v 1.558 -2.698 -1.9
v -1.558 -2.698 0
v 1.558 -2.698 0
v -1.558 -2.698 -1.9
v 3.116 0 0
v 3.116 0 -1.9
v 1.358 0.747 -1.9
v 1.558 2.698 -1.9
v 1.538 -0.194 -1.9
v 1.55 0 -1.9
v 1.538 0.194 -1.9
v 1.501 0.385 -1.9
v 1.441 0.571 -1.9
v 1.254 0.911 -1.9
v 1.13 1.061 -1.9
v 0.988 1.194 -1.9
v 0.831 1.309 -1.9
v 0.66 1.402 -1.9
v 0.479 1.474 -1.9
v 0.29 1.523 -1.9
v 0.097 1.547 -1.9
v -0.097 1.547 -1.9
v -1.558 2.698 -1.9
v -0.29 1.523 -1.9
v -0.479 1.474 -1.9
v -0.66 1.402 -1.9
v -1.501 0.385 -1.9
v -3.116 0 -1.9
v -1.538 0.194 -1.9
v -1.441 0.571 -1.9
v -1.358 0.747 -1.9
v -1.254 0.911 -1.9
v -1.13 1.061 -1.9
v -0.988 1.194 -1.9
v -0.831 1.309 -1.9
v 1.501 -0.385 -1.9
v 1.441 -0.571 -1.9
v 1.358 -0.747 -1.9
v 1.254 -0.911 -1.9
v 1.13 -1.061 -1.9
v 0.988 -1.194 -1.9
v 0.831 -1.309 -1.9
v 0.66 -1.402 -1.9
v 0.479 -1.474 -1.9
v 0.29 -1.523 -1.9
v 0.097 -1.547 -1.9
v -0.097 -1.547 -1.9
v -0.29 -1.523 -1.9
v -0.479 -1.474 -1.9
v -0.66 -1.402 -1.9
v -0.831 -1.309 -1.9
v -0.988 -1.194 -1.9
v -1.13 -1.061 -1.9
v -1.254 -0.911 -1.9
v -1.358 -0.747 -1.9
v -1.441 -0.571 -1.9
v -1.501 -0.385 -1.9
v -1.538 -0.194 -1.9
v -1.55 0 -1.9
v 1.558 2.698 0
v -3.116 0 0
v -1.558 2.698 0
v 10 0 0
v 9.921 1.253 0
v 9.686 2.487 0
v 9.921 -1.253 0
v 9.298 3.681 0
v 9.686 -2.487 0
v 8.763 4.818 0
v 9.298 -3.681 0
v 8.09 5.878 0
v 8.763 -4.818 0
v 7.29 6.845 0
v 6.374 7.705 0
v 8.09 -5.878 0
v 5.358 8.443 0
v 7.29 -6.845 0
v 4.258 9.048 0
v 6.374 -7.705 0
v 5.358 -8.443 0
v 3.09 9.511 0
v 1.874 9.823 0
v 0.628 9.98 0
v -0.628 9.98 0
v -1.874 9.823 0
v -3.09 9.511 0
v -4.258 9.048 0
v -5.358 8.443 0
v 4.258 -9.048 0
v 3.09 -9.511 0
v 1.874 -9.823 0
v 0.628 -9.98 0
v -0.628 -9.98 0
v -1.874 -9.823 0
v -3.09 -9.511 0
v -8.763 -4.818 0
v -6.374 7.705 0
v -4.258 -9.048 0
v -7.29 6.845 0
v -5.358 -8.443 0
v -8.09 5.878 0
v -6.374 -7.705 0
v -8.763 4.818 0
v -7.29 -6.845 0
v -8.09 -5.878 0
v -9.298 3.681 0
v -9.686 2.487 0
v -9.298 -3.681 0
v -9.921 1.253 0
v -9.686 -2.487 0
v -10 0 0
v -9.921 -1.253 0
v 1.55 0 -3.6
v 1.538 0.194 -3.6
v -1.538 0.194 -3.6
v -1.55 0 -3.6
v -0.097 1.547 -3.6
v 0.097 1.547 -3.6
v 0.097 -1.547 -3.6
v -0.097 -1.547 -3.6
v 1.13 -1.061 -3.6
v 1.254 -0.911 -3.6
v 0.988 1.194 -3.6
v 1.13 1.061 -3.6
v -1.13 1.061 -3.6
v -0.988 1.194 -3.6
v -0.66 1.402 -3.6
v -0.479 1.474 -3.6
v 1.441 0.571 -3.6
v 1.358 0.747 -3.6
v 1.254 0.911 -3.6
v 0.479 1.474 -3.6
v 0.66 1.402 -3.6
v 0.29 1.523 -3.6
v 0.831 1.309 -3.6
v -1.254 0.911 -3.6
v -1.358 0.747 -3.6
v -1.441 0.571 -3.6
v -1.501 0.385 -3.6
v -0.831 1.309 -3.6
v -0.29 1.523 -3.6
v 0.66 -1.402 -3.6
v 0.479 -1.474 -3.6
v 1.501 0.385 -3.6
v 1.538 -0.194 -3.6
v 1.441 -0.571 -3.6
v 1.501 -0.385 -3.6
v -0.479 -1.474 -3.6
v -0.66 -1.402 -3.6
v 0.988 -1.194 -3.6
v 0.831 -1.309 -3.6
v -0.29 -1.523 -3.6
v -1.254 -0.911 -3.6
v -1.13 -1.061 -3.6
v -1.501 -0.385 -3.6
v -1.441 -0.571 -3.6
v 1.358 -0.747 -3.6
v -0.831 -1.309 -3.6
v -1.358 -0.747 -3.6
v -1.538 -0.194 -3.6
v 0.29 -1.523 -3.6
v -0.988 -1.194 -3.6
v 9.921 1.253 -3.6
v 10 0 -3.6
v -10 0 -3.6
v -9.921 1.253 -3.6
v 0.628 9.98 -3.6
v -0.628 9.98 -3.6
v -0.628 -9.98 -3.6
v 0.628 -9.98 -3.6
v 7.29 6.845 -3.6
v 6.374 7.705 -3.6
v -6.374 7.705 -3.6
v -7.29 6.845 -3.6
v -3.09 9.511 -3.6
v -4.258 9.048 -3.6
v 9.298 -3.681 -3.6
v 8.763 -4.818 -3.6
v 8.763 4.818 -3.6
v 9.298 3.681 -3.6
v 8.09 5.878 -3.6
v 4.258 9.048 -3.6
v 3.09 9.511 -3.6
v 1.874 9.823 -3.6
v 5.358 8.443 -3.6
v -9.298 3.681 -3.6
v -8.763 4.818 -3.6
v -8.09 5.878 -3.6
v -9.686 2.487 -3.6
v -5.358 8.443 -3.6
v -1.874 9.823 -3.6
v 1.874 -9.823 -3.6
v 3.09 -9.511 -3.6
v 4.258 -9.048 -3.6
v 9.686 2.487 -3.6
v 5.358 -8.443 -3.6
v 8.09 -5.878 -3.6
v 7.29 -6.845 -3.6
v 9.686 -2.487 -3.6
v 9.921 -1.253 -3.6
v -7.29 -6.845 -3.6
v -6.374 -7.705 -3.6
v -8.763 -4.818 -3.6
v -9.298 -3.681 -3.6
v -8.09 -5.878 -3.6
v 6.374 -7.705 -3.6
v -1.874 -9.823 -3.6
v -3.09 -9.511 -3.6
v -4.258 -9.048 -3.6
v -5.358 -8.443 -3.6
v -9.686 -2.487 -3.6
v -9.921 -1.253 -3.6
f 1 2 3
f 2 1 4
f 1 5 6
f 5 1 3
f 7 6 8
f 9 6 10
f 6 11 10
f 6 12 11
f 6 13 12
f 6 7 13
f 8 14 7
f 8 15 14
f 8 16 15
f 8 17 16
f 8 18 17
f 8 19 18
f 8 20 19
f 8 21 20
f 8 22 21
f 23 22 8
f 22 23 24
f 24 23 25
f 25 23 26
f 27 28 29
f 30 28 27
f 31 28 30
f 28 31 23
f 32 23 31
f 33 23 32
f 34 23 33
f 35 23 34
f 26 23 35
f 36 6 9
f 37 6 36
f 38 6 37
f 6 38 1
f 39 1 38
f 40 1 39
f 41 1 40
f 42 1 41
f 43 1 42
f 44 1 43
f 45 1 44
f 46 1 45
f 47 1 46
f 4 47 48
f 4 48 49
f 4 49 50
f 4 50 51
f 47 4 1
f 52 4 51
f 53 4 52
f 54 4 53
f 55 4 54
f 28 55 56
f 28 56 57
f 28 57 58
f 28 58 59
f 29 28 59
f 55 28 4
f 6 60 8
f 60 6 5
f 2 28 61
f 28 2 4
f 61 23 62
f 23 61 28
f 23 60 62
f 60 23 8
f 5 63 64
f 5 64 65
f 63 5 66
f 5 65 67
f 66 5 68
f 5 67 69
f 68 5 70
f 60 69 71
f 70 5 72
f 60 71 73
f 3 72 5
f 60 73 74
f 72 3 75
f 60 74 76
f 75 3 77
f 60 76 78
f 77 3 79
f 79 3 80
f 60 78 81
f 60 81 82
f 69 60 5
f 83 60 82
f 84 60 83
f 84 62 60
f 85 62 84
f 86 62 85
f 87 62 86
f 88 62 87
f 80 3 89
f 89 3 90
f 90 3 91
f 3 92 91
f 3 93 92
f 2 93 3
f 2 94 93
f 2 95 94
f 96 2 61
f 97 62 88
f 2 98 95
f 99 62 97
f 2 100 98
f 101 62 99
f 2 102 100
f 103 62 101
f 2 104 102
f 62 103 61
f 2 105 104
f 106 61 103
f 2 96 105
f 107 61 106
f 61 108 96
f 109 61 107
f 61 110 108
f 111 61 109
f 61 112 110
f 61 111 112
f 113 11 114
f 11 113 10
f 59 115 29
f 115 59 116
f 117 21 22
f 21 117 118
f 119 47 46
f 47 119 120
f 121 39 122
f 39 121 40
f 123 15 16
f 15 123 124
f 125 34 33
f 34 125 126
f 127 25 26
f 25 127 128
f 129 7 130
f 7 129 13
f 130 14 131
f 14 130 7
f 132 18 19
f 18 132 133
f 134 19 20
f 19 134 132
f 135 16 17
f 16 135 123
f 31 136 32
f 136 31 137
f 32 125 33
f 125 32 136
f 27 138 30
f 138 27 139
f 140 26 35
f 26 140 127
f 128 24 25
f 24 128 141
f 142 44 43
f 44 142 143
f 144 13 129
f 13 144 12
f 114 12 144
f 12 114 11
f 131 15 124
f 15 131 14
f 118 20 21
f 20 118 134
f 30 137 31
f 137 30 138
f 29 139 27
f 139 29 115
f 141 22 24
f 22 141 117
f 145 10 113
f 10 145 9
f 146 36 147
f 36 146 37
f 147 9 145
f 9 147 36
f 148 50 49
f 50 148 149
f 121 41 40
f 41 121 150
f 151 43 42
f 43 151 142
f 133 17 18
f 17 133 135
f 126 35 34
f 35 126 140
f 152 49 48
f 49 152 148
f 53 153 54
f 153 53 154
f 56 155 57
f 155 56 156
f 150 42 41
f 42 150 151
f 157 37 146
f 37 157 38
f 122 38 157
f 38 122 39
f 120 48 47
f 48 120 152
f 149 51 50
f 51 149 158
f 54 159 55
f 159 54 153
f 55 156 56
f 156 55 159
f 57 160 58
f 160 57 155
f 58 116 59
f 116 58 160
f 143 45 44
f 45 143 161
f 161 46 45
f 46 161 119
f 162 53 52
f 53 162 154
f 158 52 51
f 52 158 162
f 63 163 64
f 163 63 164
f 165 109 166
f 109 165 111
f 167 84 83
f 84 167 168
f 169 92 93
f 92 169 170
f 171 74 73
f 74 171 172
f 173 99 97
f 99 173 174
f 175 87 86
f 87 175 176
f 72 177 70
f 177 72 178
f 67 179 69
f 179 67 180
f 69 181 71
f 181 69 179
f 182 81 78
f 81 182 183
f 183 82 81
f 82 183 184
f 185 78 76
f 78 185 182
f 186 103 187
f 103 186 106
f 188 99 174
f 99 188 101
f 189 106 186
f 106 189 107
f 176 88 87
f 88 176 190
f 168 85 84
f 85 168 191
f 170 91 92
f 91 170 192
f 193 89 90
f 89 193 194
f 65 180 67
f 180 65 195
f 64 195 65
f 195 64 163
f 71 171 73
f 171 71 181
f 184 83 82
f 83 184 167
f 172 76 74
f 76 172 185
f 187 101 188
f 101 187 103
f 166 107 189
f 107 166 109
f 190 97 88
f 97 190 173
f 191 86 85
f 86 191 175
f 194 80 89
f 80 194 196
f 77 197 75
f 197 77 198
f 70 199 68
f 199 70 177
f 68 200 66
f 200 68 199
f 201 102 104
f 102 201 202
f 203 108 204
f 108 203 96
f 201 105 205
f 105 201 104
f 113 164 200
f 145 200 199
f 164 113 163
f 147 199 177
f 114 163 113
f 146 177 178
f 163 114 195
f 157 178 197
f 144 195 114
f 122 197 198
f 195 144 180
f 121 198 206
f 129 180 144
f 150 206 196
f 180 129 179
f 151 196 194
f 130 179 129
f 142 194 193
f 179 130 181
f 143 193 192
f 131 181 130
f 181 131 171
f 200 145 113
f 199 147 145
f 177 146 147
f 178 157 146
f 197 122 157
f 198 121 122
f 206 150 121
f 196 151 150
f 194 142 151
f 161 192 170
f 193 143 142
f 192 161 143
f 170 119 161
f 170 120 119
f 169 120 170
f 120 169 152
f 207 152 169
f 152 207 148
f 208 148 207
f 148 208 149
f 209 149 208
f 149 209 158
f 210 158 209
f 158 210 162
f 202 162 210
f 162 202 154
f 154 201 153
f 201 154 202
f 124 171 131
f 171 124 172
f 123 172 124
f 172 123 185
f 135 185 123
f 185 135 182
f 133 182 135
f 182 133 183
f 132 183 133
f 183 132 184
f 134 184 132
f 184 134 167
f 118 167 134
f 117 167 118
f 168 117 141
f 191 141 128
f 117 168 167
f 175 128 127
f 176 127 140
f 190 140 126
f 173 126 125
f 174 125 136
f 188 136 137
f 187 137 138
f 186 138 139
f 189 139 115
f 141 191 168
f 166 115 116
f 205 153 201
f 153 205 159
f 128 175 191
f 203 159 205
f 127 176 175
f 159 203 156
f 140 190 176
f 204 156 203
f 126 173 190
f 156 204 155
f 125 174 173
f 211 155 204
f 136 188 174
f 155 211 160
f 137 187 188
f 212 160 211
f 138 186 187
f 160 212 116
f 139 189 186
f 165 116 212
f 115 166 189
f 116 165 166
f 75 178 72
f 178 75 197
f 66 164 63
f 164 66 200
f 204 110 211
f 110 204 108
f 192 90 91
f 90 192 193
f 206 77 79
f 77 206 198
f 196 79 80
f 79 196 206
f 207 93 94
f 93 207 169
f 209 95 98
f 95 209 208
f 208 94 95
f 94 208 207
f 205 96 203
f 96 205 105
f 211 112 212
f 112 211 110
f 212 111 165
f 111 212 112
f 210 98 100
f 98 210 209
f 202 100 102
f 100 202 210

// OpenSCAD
$fn = 50;


difference() {
	union() {
		translate(v = [0, 0, -3.6000000000]) {
			cylinder(h = 3.6000000000, r = 10.0000000000);
		}
	}
	union() {
		translate(v = [0, 0, 0]) {
			rotate(a = [0, 0, 0]) {
				difference() {
					union() {
						translate(v = [0, 0, -1.9000000000]) {
							linear_extrude(height = 1.9000000000) {
								polygon(points = [[3.1158000000, 0.0000000000], [1.5579000000, 2.6983619531], [-1.5579000000, 2.6983619531], [-3.1158000000, 0.0000000000], [-1.5579000000, -2.6983619531], [1.5579000000, -2.6983619531]]);
							}
						}
					}
					union();
				}
			}
		}
		#translate(v = [0, 0, -100.0000000000]) {
			cylinder(h = 200, r = 1.5500000000);
		}
	}
}
